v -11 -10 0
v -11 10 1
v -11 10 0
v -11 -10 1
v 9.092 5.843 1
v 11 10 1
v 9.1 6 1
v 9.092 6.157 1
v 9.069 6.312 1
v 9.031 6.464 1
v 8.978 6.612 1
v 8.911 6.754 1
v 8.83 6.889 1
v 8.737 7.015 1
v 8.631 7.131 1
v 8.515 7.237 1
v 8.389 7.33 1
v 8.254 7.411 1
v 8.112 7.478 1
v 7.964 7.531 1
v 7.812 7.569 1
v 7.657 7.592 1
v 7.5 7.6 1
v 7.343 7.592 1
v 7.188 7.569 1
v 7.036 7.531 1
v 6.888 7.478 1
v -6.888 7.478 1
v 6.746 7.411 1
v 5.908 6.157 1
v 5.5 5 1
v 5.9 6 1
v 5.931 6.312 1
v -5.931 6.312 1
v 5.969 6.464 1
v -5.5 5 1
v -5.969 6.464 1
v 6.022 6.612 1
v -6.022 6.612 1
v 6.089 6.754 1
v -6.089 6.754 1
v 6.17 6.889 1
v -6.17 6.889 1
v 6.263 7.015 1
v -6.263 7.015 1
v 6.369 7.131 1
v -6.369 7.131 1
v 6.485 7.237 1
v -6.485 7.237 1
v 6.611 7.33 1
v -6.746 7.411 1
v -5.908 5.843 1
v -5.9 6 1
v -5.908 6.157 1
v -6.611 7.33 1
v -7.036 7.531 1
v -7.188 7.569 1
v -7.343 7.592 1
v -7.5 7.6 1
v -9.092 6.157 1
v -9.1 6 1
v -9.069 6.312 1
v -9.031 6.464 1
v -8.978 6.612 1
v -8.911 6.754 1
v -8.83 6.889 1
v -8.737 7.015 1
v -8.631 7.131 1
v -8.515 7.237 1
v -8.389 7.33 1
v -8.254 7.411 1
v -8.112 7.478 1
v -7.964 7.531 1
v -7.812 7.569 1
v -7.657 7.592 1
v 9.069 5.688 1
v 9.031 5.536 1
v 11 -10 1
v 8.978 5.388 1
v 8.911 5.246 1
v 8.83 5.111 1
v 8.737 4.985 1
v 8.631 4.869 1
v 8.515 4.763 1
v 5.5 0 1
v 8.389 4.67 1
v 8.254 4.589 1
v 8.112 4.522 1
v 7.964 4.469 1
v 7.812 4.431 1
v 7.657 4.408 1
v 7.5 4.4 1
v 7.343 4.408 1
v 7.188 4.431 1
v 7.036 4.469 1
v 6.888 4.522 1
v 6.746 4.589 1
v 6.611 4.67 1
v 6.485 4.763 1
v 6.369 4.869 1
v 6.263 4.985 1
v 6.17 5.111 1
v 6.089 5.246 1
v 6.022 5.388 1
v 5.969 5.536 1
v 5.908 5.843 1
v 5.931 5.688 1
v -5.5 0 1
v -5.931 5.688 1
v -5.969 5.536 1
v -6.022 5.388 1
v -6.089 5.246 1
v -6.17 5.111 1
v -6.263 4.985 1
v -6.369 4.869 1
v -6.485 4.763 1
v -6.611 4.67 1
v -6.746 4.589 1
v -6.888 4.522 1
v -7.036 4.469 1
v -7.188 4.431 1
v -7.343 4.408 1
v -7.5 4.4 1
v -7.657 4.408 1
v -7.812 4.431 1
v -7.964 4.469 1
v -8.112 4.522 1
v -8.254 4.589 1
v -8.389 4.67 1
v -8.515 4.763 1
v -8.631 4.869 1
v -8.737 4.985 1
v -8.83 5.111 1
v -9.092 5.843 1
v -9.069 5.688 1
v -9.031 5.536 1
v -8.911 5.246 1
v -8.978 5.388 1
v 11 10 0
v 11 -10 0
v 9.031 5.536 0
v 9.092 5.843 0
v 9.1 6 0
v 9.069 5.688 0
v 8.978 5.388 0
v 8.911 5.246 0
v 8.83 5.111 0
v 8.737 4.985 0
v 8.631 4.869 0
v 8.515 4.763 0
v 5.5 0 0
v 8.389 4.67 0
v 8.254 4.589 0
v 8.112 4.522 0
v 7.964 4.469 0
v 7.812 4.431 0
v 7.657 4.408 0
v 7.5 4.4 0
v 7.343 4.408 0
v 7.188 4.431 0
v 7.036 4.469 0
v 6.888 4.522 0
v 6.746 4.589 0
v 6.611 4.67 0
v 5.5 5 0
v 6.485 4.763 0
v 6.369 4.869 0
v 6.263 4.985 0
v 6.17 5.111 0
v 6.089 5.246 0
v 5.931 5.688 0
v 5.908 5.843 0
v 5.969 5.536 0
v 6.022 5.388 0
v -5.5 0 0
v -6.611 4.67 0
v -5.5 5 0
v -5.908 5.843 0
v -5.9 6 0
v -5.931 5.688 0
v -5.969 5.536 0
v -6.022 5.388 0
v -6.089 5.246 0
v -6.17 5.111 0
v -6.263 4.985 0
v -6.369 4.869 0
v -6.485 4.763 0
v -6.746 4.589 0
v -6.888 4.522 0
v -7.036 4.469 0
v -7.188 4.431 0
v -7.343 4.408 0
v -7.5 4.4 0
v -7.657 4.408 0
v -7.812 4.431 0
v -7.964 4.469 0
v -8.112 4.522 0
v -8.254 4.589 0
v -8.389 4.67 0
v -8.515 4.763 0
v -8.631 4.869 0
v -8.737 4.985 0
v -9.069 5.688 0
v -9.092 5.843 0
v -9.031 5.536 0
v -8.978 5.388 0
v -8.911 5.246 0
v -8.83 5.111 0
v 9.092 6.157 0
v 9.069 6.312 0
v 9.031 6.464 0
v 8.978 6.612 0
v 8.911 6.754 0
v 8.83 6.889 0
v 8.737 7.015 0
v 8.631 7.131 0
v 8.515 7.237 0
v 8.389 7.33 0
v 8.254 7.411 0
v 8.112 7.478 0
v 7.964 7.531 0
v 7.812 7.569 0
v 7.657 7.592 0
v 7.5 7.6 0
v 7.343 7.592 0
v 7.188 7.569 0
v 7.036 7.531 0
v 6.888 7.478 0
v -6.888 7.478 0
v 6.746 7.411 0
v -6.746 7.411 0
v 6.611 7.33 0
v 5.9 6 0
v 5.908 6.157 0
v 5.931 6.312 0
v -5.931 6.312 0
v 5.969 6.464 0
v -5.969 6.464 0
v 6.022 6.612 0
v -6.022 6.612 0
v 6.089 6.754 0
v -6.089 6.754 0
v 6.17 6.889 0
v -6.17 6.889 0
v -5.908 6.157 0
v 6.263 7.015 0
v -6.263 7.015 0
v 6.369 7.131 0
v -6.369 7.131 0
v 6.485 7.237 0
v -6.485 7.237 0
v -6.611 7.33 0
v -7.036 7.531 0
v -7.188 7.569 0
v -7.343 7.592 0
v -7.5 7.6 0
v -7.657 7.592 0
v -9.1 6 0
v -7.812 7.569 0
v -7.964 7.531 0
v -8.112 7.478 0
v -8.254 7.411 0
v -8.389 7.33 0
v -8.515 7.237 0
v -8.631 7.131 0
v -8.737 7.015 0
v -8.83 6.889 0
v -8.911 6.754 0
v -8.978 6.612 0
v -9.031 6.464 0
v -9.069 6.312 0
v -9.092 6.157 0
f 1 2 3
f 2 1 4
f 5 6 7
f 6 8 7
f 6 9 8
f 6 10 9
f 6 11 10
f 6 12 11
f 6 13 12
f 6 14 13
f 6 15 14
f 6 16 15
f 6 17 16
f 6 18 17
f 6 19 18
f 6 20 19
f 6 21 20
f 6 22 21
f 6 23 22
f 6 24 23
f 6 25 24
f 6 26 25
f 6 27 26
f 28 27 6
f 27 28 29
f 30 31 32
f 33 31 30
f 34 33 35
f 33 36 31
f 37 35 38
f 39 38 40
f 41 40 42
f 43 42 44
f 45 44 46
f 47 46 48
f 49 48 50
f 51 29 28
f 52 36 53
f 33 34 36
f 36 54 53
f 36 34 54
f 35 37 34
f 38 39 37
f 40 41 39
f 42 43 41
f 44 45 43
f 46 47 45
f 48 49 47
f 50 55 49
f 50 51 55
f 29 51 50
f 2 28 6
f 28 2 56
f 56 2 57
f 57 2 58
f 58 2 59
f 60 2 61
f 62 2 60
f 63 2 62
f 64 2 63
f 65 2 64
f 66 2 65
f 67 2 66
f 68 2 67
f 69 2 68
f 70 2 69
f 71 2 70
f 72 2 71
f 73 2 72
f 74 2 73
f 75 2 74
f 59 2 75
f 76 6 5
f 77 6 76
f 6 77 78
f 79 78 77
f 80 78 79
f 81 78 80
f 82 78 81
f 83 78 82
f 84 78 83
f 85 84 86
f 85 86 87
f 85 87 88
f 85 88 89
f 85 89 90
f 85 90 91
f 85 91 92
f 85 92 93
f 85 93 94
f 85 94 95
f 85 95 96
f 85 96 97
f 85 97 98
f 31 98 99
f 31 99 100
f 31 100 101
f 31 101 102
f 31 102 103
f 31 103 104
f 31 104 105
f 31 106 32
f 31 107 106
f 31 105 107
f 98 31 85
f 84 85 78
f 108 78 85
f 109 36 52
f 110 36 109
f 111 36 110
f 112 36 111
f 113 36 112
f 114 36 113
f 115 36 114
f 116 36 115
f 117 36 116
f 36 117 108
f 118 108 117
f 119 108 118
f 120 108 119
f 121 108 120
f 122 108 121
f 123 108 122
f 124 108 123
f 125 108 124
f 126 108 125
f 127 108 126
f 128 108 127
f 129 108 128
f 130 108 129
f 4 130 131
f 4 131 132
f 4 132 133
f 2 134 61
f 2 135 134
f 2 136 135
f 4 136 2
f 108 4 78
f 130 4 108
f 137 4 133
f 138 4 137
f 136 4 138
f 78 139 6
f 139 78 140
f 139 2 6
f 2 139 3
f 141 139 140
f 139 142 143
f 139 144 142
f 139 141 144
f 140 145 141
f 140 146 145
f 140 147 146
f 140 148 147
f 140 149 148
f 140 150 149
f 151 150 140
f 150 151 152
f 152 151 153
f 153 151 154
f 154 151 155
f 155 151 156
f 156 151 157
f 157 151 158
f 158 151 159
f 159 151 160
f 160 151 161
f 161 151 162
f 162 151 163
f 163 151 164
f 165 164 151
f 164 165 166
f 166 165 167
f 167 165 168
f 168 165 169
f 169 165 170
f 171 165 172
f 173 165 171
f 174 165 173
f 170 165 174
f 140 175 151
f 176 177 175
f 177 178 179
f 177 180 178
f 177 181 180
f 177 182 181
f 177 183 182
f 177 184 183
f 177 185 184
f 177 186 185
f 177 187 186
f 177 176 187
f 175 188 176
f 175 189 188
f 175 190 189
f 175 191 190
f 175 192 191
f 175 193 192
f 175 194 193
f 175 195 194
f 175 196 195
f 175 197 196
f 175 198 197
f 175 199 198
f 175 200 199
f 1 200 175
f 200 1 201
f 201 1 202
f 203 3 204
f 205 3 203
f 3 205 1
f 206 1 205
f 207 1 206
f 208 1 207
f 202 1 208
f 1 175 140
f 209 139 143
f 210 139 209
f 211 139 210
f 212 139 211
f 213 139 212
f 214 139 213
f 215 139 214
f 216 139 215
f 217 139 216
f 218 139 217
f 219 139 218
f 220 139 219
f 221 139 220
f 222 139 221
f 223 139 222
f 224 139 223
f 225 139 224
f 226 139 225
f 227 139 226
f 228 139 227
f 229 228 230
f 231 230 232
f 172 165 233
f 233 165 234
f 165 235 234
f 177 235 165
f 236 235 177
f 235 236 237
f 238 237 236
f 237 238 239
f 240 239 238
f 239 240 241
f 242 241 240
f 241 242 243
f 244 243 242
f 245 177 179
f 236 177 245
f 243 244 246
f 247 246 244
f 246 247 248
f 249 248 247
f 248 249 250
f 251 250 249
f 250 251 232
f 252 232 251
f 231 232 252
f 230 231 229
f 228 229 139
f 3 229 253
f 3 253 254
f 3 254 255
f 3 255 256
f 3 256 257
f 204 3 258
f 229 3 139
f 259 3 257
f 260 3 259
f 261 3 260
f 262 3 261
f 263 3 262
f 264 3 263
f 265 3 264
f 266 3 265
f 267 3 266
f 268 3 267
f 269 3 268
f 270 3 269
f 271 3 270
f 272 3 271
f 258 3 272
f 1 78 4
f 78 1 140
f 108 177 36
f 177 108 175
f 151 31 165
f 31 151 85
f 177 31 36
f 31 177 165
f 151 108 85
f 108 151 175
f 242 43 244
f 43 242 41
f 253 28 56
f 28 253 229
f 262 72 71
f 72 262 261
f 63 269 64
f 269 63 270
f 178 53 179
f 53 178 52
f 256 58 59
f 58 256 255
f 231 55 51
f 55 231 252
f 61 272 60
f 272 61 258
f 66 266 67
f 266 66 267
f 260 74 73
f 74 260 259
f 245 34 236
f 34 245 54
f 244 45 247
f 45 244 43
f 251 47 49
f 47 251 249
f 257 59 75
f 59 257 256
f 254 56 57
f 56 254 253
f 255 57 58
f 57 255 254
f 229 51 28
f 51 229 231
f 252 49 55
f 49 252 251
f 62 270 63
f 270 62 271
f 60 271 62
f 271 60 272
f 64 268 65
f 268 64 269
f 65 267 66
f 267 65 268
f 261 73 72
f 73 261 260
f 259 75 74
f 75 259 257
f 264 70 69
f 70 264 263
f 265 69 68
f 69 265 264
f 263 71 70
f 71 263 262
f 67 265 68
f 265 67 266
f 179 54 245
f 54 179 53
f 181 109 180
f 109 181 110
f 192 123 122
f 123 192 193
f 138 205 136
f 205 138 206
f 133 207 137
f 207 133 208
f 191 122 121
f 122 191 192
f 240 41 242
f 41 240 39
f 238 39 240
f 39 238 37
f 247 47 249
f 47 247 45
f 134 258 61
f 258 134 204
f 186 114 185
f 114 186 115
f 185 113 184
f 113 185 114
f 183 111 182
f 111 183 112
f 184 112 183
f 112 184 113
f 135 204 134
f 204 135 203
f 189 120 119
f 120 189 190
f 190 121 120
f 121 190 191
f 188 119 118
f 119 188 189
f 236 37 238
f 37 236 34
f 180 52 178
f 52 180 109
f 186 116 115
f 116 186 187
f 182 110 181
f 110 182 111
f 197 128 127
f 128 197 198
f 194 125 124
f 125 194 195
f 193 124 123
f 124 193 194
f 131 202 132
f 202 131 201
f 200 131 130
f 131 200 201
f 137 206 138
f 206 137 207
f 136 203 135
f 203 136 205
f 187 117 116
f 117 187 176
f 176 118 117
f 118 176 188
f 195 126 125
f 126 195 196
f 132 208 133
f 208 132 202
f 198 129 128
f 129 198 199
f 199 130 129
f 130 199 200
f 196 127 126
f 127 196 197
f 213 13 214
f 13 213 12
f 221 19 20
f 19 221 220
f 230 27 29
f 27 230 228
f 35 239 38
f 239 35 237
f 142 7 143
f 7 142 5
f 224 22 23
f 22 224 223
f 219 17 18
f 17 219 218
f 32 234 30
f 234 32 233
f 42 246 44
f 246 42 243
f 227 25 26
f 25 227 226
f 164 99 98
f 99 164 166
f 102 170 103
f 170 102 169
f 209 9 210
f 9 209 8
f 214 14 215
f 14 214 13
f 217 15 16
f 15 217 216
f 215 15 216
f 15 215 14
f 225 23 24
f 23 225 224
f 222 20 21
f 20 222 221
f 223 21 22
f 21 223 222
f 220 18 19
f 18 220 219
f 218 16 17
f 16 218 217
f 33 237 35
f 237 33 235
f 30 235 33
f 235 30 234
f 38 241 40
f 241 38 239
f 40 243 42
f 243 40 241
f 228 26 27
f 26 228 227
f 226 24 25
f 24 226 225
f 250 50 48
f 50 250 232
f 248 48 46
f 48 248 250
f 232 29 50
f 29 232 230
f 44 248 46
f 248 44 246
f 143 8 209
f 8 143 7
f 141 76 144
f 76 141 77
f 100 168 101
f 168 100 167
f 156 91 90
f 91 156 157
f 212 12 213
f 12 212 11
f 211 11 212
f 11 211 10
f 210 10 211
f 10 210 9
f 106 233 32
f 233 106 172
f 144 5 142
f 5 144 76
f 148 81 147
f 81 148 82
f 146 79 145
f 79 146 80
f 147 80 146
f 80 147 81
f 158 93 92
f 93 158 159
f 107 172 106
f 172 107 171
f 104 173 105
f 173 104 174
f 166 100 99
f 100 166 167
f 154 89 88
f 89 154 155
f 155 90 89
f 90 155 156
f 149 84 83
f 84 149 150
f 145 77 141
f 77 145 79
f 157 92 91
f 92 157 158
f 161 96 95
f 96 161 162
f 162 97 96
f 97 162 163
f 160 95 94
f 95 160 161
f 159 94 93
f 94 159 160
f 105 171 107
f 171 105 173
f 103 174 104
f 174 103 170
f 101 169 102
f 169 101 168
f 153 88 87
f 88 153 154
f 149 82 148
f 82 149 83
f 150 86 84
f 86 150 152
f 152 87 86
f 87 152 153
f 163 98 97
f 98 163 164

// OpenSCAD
// Definition size of housing
// **************************

length =140;
width      = 75;    
height      = 10;     
studheight    = 10;

cutoutlength = 110;
cutoutwidth = 52;

flangewidth = 22;
flangeheight = 4;



//Definition of circle angular resolution
resol        = 64;           // Identical to housing !!!



difference () {
    
    union() {
        difference() {
        translate ([0,0,0.5]) cube ([22,20,1], center=true);
            translate ([0,2.5,0]) cube ([11,5,3], center=true); //main box hole
        }

    //translate ([-7.5,6,0]) cylinder (h=1, r=1.6, $fn=resol); //
    //translate ([7.5,6,0]) cylinder (h=1, r=1.6, $fn=resol); //
      
//translate ([0,2,0.5]) cube ([15,7,5], center=true);

    }
    
    

    translate ([-7.5,6,0]) cylinder (h=42, r=1.6, $fn=resol); //
    translate ([7.5,6,0]) cylinder (h=42, r=1.6, $fn=resol); //

    //translate ([0,-20,20]) rotate ([90,90,0]) cylinder (h=15, r=9.75, $fn=resol); //mount boss od 19.5
    
    
    //translate ([0,10,0]) cube ([25,10,2], center=true);
    
    //translate ([12.5,0,0]) cube ([10,20,2], center=true);
    //translate ([-12.5,0,0]) cube ([10,20,2], center=true);

}
